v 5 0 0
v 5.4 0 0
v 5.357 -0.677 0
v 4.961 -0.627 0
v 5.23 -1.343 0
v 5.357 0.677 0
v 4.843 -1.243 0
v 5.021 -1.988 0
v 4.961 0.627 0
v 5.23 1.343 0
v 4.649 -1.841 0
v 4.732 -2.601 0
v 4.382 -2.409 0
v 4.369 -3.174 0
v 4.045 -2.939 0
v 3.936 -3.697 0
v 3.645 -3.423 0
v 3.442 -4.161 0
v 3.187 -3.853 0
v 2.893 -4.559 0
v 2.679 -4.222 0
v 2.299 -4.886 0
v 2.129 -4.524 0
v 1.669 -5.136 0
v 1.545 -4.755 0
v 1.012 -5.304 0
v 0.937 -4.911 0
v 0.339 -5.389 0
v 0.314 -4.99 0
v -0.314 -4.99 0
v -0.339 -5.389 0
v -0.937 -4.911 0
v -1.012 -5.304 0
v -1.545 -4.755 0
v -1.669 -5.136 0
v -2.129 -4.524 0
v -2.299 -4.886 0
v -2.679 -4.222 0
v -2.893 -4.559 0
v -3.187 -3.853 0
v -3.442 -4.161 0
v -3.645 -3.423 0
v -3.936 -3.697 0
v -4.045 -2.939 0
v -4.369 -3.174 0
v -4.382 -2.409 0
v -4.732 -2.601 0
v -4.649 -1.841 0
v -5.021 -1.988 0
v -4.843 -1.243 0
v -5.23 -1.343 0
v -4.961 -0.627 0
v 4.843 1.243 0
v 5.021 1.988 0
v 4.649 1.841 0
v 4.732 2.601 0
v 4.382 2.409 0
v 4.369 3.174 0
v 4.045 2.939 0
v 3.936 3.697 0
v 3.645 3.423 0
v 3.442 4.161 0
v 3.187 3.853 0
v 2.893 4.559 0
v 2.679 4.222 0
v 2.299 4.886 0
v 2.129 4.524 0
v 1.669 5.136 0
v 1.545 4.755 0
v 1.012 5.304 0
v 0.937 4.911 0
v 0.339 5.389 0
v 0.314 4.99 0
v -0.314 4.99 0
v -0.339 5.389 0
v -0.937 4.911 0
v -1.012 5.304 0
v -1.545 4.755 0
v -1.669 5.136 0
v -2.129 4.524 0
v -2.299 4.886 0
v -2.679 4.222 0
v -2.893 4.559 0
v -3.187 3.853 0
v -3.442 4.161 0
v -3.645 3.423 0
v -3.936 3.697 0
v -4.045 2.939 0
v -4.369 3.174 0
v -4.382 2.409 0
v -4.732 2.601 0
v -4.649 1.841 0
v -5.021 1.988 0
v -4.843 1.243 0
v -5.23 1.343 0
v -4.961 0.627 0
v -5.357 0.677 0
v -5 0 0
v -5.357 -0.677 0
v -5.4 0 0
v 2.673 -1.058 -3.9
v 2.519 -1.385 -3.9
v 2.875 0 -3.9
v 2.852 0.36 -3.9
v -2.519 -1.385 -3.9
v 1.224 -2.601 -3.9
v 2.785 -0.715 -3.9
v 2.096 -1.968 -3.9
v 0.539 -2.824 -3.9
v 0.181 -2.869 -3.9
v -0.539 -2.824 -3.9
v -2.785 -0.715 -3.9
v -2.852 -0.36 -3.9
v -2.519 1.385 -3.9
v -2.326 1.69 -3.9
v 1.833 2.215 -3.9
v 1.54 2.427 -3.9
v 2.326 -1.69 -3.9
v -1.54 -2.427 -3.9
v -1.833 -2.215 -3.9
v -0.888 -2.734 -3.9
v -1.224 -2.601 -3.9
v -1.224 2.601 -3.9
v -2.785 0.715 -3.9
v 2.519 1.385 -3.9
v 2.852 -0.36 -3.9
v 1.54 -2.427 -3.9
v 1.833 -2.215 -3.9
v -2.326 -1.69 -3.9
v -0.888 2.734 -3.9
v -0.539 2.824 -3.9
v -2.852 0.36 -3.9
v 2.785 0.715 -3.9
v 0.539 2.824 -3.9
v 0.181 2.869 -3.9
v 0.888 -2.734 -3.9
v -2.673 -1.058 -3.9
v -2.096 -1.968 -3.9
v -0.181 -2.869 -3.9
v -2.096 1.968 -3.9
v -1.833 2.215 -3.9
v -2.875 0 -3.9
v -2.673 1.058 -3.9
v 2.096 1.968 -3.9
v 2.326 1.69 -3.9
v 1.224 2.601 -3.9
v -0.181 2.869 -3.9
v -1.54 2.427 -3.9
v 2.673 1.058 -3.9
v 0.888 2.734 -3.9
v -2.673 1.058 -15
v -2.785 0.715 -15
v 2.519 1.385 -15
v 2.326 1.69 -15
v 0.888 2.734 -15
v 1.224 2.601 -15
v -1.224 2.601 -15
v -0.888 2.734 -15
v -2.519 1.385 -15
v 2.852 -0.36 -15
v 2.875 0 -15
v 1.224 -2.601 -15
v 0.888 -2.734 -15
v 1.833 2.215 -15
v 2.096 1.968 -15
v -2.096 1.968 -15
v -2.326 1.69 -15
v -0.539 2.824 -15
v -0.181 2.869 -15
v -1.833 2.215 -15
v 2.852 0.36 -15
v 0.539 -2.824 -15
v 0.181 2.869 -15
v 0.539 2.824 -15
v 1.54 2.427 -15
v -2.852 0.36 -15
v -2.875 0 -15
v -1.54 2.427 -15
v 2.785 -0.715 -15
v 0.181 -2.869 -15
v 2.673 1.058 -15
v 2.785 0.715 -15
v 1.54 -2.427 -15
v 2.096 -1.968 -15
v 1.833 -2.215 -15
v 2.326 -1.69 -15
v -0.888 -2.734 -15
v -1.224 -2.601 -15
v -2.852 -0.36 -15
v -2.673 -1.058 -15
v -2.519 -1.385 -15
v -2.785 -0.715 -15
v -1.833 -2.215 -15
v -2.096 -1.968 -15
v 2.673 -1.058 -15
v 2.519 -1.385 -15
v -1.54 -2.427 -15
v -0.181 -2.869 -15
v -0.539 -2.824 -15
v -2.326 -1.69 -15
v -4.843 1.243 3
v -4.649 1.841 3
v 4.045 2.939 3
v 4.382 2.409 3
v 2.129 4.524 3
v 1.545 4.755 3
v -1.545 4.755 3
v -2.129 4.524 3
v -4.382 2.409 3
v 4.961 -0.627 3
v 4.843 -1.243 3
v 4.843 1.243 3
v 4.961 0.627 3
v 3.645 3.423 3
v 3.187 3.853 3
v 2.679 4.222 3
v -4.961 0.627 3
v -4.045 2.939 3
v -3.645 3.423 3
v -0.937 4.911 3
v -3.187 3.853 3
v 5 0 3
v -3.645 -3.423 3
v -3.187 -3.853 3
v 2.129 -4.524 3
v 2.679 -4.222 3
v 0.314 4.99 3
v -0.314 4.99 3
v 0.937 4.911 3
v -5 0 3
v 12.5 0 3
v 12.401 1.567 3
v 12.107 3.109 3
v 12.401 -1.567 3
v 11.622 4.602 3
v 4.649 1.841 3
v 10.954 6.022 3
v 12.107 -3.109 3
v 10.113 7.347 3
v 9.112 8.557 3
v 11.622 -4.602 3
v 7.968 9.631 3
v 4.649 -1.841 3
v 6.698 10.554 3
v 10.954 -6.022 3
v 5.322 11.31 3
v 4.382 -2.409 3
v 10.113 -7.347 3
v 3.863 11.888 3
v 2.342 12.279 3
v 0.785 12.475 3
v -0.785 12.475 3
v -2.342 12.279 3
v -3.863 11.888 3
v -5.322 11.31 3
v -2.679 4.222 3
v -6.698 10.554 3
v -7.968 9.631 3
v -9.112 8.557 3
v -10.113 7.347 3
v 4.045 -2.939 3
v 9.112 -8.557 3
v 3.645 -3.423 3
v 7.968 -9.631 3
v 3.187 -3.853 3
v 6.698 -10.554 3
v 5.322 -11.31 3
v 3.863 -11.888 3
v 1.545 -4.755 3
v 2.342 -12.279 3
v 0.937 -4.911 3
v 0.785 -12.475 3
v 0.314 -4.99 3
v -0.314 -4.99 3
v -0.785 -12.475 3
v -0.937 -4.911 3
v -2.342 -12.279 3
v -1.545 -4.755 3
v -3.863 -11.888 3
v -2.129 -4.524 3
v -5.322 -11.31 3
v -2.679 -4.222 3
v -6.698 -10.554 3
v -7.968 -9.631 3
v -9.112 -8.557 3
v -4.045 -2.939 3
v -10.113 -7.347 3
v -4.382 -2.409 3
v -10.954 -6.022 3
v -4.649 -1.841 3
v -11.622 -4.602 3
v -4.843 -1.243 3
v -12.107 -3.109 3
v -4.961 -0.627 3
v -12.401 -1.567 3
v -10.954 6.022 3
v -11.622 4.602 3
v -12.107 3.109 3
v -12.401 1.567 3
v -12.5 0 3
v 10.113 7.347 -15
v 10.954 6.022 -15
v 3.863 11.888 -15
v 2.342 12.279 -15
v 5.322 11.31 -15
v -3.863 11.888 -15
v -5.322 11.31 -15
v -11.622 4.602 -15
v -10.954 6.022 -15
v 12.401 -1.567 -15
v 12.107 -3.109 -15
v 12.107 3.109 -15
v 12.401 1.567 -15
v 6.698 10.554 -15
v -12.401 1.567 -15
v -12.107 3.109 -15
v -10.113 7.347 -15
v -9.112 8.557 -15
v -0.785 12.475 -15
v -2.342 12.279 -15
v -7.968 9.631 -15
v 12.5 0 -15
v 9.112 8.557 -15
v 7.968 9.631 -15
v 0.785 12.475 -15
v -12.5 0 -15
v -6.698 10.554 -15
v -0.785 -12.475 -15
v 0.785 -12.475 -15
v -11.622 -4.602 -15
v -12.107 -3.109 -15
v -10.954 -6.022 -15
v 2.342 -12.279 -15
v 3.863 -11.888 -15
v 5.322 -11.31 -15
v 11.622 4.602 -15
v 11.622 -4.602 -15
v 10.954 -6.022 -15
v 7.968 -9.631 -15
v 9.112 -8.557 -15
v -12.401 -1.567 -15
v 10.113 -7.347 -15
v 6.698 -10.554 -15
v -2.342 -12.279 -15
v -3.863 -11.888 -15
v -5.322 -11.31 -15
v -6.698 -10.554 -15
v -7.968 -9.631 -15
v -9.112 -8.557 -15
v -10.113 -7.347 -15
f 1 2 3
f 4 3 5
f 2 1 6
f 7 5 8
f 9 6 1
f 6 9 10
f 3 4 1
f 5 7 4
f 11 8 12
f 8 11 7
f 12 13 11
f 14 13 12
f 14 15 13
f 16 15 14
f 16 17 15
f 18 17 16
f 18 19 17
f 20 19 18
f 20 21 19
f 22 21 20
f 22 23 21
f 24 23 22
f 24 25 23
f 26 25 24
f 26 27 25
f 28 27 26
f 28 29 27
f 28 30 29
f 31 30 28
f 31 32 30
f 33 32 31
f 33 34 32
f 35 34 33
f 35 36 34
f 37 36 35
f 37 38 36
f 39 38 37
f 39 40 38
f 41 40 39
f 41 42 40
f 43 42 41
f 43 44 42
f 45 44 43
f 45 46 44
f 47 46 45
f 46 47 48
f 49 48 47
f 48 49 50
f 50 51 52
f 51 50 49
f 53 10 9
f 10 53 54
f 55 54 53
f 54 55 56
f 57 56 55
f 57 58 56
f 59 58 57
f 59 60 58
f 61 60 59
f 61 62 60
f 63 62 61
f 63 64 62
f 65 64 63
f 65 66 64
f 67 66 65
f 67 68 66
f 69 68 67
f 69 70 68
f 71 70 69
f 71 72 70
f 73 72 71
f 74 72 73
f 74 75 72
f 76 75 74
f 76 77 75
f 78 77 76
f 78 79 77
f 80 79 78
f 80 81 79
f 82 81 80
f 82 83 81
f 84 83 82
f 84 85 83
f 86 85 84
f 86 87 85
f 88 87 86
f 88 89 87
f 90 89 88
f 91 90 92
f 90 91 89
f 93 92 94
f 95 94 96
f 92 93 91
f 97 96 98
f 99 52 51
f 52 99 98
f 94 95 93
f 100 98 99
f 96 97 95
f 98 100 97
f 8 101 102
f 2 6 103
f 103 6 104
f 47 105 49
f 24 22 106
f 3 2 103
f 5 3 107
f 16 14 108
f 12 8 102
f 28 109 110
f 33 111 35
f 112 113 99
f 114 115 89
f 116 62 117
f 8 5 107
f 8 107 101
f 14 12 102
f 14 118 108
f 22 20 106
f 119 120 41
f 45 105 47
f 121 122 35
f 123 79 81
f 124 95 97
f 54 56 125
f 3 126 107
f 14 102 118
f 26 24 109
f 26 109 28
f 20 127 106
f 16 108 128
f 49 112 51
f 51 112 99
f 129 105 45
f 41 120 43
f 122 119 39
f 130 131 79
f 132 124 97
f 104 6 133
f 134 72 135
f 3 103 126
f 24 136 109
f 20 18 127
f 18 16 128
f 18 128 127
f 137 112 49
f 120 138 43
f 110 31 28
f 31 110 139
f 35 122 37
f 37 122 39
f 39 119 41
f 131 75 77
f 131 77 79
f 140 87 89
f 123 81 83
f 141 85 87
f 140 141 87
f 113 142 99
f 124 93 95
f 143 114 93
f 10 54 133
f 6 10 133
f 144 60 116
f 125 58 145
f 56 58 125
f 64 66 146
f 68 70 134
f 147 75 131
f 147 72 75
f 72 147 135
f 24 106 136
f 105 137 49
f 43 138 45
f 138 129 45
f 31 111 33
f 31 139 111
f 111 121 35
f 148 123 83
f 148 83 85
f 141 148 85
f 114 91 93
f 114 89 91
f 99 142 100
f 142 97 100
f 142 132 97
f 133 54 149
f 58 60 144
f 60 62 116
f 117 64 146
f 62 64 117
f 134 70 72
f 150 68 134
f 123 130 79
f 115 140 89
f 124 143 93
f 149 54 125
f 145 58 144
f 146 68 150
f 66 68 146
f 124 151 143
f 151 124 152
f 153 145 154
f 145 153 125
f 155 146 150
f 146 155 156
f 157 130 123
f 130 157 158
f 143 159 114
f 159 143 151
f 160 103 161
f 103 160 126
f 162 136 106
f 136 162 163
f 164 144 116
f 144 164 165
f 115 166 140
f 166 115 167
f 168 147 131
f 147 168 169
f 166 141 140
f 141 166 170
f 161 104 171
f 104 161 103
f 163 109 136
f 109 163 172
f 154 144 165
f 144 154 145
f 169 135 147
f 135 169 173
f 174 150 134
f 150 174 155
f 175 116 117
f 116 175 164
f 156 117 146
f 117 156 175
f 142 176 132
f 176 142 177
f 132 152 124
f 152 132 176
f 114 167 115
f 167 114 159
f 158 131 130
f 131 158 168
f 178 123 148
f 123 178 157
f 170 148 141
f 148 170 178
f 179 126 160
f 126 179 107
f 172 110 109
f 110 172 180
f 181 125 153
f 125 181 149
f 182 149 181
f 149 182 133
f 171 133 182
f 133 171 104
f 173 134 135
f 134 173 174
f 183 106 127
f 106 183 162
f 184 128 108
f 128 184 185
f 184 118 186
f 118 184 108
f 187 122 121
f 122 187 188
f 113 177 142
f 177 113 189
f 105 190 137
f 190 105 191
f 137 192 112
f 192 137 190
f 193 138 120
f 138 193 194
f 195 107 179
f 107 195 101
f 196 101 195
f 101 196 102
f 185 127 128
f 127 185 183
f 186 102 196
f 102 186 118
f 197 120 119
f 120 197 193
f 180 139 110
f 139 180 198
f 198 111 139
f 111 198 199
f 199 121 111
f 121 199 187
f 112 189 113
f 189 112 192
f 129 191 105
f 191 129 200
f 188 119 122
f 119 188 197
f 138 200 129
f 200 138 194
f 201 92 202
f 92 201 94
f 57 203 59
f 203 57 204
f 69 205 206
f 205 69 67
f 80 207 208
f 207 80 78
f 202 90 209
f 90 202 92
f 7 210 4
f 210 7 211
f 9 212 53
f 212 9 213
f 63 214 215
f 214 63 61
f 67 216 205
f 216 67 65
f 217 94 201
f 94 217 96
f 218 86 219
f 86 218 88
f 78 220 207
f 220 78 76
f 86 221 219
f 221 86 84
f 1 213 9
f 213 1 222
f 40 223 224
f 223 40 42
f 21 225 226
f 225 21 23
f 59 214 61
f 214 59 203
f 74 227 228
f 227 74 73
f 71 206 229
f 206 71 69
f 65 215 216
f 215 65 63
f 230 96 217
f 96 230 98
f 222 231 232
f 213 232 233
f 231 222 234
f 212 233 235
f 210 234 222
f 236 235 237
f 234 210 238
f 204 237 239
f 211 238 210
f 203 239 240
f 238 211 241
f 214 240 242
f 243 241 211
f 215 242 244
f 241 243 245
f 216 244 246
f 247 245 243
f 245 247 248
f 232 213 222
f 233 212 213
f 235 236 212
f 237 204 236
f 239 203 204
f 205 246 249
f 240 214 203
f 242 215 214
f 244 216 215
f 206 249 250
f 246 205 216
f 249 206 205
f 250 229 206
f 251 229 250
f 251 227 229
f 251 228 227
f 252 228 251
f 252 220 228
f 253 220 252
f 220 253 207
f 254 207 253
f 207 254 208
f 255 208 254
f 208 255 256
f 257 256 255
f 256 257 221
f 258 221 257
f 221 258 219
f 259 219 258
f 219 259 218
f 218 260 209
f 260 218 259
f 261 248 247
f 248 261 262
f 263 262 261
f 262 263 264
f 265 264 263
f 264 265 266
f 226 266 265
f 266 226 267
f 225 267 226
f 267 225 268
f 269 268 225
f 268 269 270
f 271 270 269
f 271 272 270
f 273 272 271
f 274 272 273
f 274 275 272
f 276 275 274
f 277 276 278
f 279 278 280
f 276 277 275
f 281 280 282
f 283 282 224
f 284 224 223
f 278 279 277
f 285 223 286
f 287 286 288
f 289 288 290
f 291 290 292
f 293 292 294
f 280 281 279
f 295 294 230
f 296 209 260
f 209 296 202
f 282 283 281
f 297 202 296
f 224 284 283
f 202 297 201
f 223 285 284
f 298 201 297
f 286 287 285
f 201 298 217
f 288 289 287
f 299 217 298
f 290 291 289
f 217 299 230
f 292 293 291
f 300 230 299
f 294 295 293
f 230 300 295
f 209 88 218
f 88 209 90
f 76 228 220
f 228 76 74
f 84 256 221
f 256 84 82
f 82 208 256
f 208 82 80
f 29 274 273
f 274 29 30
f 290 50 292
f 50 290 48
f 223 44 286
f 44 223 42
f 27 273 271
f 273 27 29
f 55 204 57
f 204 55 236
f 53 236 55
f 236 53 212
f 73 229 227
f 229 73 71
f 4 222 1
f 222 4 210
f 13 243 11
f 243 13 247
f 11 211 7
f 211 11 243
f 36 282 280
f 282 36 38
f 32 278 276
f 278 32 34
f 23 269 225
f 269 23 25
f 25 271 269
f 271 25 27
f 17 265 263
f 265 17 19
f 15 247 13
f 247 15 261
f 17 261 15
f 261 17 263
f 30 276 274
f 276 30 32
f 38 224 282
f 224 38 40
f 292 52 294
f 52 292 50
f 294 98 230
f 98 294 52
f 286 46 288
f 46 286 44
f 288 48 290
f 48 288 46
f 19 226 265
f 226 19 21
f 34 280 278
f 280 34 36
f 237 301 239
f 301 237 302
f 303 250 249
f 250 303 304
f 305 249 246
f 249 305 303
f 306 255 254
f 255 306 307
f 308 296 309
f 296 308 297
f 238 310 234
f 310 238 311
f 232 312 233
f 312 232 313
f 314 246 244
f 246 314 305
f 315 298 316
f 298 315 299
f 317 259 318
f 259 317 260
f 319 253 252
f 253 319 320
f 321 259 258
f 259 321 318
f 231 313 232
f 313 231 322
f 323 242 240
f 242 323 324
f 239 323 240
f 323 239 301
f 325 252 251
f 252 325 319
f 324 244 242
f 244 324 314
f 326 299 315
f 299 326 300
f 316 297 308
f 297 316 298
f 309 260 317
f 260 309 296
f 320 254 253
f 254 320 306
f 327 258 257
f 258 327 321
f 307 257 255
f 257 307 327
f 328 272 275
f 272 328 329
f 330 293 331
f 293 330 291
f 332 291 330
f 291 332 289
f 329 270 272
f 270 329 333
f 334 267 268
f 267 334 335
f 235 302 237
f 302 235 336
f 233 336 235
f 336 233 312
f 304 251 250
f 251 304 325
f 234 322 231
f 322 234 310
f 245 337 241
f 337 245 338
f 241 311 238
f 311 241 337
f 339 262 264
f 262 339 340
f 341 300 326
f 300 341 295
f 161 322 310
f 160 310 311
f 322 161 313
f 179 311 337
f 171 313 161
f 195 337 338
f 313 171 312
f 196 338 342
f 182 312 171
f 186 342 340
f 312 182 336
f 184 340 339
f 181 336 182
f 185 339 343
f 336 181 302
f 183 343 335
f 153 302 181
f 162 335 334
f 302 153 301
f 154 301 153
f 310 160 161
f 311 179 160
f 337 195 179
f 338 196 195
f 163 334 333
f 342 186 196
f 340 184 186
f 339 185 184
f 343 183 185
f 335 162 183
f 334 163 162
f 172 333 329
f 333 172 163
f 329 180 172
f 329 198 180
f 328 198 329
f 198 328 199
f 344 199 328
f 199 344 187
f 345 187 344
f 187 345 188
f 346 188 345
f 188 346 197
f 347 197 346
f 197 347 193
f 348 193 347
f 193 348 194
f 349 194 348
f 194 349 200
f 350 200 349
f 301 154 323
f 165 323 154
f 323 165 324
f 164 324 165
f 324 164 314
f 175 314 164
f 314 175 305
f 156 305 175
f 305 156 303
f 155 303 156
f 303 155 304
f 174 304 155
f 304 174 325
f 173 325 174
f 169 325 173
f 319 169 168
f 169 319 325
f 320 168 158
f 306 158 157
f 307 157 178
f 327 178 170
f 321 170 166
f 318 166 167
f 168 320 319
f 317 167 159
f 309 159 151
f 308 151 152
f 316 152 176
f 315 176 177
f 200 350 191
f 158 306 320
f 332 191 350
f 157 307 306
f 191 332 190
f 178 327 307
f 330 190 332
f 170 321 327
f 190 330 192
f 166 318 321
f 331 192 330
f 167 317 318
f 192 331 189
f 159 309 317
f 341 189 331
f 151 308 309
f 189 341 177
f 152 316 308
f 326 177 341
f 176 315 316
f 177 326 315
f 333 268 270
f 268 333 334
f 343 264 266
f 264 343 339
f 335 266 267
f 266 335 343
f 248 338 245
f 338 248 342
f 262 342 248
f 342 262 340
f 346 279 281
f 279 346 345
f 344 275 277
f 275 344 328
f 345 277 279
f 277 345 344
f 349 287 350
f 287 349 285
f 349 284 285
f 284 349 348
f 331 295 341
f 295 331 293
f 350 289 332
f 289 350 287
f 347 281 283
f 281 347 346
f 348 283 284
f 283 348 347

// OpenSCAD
$fn = 50;

difference() {
	union() {
		translate(v = [0, 0, -15.0]) {
			cylinder(h = 18, r = 12.5);
		}
	}
	union() {
		translate(v = [0, 0, 0]) {
			rotate(a = [0, 0, 0]) {
				difference() {
					union() {
						translate(v = [0, 0, -18.0]) {
							cylinder(h = 18, r = 2.6);
						}
						translate(v = [0, 0, -3.9]) {
							cylinder(h = 3.9, r1 = 2.875, r2 = 5.4);
						}
						translate(v = [0, 0, -18.0]) {
							cylinder(h = 18, r = 2.875);
						}
						translate(v = [0, 0, -18.0]) {
							cylinder(h = 18, r = 2.6);
						}
					}
					union();
				}
			}
		}
		#cylinder(h = 3, r = 5.0);
	}
}
